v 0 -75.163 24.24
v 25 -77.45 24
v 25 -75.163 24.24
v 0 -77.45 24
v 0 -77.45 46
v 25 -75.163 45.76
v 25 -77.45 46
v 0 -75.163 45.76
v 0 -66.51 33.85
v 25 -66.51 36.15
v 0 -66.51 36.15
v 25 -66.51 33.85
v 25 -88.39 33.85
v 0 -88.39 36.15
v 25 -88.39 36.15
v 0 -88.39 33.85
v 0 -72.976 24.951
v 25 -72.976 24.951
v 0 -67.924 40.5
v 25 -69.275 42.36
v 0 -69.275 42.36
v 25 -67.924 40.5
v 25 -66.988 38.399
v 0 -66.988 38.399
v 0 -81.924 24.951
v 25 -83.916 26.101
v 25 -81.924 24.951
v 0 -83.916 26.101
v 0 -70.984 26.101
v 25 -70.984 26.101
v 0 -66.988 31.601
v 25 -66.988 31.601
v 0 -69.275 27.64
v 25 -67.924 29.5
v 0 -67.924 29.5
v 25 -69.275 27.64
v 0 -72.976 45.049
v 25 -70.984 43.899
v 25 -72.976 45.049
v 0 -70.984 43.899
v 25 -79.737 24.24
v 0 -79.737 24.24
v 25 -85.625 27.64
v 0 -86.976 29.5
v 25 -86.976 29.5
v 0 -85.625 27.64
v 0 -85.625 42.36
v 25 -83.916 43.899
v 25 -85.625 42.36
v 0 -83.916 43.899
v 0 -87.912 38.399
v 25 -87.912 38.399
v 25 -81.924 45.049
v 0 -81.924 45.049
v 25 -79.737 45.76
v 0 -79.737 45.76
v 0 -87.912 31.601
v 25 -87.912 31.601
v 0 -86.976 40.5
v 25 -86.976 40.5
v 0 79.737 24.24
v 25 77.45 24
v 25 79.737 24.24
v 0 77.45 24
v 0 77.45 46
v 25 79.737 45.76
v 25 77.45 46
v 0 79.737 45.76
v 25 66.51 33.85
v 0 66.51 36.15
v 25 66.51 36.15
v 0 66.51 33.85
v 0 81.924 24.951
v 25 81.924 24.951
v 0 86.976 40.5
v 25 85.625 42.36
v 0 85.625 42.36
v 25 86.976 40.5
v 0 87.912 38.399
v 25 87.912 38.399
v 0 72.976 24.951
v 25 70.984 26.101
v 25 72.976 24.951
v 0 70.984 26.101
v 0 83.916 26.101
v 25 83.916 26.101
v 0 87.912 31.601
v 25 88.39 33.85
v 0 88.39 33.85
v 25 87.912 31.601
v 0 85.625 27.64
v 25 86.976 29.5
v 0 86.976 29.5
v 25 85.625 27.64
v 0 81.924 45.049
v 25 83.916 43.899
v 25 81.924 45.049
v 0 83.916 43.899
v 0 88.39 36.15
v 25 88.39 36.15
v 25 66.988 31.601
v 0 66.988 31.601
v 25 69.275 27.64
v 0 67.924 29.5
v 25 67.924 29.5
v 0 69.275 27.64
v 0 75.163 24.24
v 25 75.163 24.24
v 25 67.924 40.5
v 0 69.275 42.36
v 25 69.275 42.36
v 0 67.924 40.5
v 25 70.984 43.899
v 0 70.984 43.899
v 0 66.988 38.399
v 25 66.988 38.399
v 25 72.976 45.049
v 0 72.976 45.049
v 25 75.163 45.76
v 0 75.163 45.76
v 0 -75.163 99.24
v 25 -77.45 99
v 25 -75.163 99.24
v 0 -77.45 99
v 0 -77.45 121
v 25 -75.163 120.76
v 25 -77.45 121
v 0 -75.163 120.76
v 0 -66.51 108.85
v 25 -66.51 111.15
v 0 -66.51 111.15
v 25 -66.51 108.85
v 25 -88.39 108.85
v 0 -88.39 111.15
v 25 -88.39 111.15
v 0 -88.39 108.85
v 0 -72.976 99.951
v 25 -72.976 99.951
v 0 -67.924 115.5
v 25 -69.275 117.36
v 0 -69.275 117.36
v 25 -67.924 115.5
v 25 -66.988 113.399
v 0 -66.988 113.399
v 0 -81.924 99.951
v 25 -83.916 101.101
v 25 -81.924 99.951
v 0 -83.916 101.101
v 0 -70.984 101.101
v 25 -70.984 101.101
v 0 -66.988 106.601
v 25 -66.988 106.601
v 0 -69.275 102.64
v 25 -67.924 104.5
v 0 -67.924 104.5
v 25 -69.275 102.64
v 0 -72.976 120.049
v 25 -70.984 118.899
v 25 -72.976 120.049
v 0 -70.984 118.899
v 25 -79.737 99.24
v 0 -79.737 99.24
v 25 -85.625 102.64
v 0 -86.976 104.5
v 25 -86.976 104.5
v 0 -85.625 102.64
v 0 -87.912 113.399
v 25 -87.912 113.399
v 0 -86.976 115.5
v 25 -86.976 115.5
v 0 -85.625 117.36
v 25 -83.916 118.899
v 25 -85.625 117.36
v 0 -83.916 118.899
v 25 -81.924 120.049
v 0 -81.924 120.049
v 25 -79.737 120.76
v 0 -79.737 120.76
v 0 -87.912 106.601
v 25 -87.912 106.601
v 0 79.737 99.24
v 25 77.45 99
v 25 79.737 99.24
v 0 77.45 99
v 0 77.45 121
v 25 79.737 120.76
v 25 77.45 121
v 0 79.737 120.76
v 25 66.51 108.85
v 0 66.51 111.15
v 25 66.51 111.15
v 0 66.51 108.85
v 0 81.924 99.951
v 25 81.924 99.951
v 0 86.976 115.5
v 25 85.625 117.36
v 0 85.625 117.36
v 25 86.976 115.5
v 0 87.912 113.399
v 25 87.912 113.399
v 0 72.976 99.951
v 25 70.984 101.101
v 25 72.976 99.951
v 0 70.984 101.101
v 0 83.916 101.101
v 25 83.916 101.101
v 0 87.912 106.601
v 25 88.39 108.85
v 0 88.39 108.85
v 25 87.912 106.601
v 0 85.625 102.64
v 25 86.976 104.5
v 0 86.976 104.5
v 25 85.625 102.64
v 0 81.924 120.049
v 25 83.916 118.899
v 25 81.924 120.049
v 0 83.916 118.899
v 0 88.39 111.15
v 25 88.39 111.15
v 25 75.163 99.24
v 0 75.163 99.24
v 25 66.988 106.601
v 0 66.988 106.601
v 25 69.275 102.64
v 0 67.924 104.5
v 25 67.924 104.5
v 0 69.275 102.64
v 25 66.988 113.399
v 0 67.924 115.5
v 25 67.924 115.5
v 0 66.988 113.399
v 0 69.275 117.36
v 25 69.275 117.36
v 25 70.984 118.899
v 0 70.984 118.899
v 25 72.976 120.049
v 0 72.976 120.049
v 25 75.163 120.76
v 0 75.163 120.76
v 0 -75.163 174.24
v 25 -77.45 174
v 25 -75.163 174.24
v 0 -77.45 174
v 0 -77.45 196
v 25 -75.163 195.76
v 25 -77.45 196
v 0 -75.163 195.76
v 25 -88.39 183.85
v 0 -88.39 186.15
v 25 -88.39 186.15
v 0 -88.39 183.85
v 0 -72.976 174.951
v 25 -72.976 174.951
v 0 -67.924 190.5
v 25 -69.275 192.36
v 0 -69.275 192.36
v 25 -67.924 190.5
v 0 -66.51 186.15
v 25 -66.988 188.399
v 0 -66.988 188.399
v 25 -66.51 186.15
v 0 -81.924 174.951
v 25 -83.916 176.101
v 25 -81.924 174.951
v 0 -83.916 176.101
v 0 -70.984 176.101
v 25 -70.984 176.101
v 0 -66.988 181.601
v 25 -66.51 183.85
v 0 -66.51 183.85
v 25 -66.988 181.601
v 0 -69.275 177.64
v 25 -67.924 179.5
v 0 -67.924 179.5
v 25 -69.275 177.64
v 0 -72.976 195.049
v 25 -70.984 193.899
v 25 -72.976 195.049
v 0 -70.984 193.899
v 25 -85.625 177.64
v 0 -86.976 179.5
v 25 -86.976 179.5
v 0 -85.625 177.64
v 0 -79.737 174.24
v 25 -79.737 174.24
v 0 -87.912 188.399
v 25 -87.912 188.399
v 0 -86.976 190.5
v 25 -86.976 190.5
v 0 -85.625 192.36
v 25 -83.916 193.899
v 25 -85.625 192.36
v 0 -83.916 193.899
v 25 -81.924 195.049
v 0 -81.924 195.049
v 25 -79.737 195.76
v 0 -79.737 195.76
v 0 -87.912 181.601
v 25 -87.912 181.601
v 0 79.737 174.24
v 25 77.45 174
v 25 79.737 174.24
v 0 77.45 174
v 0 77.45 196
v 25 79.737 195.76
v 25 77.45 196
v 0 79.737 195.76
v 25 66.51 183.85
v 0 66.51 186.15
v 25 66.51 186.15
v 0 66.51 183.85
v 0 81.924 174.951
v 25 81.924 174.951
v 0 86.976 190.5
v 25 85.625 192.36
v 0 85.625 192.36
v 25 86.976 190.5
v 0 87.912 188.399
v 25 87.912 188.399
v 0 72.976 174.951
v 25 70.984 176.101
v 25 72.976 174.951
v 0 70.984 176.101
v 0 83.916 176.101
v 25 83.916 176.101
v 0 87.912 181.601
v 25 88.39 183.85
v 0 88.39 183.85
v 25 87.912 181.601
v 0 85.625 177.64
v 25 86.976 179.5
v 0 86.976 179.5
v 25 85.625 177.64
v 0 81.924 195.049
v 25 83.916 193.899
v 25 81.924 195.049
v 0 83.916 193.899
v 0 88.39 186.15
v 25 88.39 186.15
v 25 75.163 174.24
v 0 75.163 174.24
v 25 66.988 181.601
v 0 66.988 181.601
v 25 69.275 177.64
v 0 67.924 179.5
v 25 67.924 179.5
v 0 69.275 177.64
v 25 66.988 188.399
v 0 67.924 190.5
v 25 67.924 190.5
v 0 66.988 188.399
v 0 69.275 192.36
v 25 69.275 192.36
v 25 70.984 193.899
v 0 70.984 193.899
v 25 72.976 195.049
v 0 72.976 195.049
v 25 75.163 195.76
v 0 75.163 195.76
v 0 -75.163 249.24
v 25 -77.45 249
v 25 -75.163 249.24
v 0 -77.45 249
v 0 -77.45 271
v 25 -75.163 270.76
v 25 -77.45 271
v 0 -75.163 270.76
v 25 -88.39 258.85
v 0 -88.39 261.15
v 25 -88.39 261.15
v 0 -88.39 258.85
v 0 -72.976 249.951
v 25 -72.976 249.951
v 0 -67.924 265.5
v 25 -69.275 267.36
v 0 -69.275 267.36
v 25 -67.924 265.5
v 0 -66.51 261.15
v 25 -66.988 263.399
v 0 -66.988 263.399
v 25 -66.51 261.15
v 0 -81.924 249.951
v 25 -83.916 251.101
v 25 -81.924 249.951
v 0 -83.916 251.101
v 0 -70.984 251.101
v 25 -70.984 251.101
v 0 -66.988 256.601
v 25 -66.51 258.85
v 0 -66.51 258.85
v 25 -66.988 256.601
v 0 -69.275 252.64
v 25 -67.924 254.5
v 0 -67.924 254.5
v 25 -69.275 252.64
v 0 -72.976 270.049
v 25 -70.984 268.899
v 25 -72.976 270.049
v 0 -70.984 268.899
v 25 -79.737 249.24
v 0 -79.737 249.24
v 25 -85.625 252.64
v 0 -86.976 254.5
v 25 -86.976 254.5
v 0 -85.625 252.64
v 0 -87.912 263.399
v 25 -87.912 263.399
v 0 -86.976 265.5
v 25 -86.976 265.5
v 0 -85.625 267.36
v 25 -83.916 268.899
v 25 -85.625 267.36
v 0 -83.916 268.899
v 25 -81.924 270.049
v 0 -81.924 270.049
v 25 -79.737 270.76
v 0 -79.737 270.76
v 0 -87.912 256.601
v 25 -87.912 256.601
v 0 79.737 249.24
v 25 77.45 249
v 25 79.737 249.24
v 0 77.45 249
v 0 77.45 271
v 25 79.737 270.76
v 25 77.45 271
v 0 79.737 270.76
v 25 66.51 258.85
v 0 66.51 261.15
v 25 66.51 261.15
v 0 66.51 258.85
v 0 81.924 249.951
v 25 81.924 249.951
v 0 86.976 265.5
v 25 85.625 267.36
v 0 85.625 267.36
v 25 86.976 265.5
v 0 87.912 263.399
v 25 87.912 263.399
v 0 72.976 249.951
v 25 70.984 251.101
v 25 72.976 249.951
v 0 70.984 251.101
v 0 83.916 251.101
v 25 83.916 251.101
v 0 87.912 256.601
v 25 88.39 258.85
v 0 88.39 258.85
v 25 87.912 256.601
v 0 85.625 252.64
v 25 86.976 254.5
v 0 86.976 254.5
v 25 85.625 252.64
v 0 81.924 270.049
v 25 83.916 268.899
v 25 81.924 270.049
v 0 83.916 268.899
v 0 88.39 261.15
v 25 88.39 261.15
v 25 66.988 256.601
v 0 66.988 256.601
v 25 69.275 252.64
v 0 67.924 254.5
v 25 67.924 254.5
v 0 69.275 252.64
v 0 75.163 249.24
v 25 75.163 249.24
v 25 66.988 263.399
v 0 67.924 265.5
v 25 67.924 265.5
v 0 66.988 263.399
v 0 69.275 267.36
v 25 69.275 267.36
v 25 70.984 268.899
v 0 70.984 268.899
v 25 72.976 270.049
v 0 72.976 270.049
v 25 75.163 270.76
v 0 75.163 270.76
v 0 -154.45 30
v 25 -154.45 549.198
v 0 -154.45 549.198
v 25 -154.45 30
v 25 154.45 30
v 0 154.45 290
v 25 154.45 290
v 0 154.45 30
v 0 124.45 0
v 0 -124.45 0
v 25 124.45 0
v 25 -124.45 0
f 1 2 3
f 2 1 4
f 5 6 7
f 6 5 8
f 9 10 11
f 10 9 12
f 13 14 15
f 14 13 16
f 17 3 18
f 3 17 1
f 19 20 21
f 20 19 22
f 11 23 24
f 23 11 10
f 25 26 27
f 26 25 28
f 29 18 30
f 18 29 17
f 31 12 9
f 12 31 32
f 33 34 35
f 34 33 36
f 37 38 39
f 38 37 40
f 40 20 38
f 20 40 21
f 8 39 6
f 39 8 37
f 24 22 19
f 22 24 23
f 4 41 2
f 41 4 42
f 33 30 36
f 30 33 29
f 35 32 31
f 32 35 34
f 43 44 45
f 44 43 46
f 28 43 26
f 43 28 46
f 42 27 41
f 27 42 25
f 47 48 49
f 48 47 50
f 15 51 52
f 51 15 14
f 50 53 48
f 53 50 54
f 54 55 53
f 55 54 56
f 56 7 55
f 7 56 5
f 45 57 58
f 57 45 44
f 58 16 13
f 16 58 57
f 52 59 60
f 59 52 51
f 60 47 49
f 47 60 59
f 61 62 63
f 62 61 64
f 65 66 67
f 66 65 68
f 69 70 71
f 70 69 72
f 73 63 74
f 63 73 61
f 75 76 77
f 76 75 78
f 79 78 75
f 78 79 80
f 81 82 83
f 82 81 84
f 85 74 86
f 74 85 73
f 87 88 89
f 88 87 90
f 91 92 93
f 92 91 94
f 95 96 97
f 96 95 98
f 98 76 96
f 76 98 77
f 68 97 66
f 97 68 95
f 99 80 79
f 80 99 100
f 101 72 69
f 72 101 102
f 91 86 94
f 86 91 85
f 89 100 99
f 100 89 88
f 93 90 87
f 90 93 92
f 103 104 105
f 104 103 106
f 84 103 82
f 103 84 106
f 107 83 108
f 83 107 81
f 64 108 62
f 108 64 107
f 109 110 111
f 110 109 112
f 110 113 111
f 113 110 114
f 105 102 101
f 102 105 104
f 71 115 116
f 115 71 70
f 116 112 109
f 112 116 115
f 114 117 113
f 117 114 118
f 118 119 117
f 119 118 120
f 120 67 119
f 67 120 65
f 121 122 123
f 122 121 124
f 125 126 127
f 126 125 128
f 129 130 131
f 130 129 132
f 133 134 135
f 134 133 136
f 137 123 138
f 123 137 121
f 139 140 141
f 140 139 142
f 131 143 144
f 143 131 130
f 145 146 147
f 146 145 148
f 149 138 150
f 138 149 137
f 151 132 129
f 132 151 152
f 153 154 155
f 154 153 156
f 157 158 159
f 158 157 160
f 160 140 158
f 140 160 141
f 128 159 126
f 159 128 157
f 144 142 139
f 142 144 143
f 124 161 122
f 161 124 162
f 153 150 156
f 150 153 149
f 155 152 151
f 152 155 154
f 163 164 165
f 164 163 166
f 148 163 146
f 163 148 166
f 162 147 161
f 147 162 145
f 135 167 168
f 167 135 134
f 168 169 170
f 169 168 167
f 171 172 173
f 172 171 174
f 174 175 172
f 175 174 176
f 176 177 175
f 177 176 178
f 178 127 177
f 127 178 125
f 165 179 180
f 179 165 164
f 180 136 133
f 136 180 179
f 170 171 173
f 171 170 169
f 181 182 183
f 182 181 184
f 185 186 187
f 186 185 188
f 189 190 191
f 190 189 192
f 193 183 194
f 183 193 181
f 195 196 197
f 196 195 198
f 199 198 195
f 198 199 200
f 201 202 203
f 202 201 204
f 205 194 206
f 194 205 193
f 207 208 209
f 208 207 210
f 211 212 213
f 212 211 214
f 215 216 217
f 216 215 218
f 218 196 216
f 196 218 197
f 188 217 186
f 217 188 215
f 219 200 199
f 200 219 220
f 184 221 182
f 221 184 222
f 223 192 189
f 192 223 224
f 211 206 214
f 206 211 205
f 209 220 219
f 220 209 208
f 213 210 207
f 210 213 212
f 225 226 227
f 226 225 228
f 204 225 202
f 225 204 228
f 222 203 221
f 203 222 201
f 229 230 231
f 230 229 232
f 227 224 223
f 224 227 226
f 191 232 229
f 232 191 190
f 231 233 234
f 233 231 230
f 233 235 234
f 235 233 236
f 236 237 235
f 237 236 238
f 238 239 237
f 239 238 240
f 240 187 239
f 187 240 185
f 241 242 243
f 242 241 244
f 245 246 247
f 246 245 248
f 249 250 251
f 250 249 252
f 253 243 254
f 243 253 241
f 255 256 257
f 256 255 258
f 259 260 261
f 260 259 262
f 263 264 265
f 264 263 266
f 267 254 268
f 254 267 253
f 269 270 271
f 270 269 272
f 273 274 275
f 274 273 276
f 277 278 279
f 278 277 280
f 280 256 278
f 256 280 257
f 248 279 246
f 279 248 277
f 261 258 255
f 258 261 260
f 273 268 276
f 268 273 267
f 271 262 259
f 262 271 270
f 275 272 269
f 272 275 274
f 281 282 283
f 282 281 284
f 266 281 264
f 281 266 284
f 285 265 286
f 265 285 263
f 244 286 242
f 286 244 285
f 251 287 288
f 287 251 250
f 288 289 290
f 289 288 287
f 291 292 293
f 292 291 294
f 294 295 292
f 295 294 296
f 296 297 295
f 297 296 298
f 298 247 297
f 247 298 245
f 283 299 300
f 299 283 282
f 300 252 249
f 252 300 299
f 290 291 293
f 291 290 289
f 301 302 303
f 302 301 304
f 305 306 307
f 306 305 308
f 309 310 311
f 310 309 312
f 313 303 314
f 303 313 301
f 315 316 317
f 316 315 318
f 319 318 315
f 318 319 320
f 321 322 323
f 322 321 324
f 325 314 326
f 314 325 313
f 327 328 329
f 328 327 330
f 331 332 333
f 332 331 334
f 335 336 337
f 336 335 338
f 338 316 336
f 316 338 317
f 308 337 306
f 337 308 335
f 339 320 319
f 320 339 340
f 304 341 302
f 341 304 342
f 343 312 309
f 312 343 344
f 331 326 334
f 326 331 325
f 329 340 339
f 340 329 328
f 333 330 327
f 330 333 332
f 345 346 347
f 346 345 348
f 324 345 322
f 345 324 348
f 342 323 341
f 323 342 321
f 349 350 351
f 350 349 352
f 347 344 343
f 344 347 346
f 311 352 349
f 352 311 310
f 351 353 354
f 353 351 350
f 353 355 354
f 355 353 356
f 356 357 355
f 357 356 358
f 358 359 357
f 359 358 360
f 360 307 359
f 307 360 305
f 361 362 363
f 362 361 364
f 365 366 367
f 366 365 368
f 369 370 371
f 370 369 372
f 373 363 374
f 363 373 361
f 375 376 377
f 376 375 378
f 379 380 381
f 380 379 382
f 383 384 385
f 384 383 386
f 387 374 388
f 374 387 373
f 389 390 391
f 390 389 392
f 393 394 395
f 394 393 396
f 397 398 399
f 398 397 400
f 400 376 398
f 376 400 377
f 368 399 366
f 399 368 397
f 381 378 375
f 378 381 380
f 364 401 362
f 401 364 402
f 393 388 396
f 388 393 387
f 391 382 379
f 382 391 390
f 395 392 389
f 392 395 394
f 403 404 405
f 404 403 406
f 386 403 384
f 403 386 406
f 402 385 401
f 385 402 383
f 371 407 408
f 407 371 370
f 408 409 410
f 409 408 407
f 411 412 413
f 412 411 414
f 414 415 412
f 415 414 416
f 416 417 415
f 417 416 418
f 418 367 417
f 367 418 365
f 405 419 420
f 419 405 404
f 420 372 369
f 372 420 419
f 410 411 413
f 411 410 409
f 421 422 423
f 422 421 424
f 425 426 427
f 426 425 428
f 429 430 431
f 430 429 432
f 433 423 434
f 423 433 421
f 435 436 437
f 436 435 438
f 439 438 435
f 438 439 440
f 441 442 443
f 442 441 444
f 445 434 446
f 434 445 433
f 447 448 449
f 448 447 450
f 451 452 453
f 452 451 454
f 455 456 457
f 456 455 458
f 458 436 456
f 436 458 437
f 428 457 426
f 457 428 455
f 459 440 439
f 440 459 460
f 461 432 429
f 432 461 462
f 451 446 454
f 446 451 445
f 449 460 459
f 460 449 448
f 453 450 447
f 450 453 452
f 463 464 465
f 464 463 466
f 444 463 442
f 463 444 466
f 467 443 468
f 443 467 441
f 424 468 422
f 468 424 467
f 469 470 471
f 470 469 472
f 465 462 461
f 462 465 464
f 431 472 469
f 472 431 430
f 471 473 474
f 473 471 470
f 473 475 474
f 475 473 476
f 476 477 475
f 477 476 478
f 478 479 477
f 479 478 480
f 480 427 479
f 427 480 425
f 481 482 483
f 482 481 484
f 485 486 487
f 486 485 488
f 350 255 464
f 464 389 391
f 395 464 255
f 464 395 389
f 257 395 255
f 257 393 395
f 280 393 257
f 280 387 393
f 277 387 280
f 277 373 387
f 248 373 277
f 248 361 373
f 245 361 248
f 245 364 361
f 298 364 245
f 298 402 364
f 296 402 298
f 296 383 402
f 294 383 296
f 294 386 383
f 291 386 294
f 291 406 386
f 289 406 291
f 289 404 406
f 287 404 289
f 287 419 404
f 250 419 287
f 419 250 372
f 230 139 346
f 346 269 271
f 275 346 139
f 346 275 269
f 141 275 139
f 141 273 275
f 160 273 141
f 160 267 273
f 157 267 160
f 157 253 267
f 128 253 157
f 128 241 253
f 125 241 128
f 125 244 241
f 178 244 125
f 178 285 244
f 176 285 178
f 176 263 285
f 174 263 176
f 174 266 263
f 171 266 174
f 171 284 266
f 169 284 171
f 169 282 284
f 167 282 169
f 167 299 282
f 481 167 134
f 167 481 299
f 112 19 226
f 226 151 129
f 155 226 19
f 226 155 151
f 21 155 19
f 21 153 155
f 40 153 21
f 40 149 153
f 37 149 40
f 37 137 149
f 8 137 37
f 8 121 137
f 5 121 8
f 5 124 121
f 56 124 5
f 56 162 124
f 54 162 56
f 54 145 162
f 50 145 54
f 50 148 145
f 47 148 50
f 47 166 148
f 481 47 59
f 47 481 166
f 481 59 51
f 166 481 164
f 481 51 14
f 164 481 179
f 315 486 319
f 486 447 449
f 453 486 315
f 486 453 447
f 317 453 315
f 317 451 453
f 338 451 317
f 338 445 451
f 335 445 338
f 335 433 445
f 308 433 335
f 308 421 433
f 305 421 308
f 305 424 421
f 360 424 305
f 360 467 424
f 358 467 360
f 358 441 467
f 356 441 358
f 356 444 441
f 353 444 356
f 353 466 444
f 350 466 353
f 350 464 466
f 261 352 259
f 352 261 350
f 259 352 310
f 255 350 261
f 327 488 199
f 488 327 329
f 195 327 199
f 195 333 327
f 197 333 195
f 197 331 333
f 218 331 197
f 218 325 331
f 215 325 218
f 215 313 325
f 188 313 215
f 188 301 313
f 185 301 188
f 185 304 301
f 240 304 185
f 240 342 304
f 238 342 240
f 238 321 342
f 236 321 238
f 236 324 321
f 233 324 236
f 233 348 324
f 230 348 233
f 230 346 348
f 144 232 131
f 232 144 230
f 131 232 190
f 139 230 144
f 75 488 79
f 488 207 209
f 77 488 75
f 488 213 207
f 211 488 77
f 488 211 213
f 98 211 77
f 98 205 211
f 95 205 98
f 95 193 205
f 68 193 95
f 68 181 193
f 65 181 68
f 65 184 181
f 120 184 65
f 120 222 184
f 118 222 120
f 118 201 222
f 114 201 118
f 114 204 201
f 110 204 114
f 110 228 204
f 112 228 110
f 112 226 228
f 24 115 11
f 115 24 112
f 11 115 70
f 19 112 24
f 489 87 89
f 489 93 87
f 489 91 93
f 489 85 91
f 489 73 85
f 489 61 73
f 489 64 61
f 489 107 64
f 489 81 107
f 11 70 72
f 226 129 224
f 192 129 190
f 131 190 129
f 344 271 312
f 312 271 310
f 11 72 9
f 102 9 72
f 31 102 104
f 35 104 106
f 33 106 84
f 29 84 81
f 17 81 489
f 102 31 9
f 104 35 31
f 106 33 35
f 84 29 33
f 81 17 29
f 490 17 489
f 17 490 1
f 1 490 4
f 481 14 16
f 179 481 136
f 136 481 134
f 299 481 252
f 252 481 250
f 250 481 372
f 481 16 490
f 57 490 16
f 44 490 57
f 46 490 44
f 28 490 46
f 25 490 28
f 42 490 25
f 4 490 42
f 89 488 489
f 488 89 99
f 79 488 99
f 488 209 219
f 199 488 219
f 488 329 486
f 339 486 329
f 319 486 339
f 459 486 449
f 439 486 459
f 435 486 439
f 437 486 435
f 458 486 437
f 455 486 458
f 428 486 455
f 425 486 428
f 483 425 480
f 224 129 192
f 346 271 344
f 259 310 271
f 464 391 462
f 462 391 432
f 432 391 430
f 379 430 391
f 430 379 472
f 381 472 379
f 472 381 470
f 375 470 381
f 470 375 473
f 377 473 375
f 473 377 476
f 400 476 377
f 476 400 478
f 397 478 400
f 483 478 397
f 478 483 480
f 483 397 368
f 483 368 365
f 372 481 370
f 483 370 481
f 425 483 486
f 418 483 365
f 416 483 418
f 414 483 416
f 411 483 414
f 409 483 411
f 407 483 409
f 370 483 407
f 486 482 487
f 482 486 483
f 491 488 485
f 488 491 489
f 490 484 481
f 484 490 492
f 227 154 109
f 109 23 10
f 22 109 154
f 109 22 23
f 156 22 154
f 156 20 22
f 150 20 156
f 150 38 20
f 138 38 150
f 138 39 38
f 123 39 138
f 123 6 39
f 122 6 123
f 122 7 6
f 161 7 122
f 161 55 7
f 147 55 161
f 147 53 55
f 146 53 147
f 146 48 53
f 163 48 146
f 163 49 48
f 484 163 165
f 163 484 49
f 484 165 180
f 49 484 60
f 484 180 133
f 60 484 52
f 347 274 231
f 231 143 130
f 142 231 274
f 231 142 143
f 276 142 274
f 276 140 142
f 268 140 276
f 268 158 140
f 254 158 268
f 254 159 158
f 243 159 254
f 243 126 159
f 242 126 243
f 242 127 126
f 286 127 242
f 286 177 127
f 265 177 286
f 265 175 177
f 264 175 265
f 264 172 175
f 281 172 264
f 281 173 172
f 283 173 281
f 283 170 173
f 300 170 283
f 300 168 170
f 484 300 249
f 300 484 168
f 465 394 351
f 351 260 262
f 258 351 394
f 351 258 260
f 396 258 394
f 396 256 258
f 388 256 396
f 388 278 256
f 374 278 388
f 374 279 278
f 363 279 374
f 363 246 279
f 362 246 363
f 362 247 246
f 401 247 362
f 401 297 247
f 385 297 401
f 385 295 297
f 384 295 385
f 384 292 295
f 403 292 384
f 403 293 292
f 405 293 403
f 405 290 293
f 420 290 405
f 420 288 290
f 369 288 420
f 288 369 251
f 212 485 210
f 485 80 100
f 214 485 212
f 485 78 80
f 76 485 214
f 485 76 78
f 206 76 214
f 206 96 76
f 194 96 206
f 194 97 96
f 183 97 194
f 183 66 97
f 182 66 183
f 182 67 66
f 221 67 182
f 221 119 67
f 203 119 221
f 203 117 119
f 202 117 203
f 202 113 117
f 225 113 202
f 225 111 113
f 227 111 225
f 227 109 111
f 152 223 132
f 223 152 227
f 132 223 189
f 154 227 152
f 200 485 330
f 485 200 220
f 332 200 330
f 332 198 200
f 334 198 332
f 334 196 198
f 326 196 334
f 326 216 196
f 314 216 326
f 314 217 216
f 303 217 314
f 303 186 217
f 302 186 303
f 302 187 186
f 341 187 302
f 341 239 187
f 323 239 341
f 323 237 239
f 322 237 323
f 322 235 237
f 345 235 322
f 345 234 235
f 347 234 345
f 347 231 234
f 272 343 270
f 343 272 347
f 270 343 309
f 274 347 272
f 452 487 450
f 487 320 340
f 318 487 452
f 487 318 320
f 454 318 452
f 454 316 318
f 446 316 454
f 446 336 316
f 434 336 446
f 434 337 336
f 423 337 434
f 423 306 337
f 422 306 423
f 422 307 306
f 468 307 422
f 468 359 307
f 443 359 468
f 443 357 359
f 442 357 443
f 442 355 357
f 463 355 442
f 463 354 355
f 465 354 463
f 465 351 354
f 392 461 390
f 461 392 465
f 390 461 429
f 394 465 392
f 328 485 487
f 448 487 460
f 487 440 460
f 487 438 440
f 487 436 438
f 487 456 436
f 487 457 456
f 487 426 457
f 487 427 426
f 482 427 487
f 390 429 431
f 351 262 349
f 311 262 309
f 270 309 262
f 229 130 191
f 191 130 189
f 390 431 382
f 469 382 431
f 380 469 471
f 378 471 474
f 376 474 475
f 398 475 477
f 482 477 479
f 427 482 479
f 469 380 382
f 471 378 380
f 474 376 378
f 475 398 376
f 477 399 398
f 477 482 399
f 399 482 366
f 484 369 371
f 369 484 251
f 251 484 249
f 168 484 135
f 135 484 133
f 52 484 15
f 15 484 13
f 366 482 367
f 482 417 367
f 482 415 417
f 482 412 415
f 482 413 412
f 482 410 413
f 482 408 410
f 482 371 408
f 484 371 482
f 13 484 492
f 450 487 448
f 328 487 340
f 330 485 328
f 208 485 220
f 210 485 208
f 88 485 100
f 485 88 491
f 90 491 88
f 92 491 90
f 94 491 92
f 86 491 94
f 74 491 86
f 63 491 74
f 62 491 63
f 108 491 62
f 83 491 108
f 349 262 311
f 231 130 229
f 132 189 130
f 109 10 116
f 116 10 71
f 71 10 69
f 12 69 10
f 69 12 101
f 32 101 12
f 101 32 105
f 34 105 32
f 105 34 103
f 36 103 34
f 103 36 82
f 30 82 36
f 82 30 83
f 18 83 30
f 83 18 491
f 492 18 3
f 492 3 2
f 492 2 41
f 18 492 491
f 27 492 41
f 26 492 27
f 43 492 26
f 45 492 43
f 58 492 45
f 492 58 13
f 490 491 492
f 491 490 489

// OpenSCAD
// file: params.scad
// Global Parameters for the IKEA brace

// The Wide Flange is a W250x67

WF_b = 204;    // flange width
WF_t = 15.7;   // flange thickness
WF_d = 257;    // total depth
WF_w = 8.9;    // web thickness
WF_k = 36;     // "k" distance (outside of flange to toe of fillet)
// WF_L = undef;    // total length of W  (see below)

WF_cut_radius = 300;   // radius of flange cut
WF_flange_cut = 40;    // width cut from each flange
// WF_start_cut = undef;  // distance to start of flange cut (see below)
// WF_g = undef;          // bolt gauge  (see below)

// The angles are L102x76x13, short leg bolted to web, long leg outstanding

L_d = 102;     // leg size, out from web
L_b = 76.2;    // leg size, parallel to web
L_t = 12.7;    // leg thickness
L_dg = 65;     // gauge, out from web
L_bg = 45;     // gauge, parallel to web - for bolts through web


// Bolts
Bolt_d = 22;     // bolt hole diameter (actual, not allowance)
Bolt_e = 35;     // end distances
Bolt_n = 4;      // number of bolts each end of angle
Bolt_s = 75;     // bolt spacing

// Gusset Plate
Gusset_t = 25;     // gusset thickness
Gusset_e = Bolt_e;     // edge distance to first bolt
Gusset_gap = 5;       // between gusset plate and end of W
// Gusset_g = undef;    // gusset gauge - see below

// Web Plates (reinforcing)
Plate_t = 8;       // plate thickness
Plate_W = 175;     // plate width
Plate_setback = 10;   // setback from end of web for welding
Plate_L = (Bolt_n-1)*Bolt_s + Bolt_e + Bolt_e - Plate_setback;      // plate length

WF_L = 800;                   // length of W
WF_g = Gusset_t + 2*L_bg;      // gauge distance on WF web
Gusset_g = WF_w + 2*Plate_t + 2*L_dg;    // gauge distance on gusset plate
WF_start_cut = Plate_L + 0;   // start cutting flange this far from big end

WF_T = WF_d - WF_k*2;         // "T" distance - inside of fillet toes = d-2k
if( Plate_W+10 > WF_T ) {
    echo( "Web plate too wide.  Max is", WF_T-10 );
}
w = Gusset_t + L_b*2;         // out-to-out of angles
if( w > WF_T ) {
    echo( "Angles+gusset too wide.  Reduce by", w-WF_T, "Max angle leg is",(WF_T-Gusset_t)/2 );
}

// echo("WF_g =", WF_g, "(gauge on web and gusset)");
// main file
// full size gusset plate

include <params.scad>;

d = Bolt_d; // hole diameter
g = Gusset_g;   // gauge, on gusset plate
e = Gusset_e;          // end distance, next to W 
e2 = 30;               // other end distance
n = Bolt_n;            // no of lines of bolts
s = Bolt_s;            // bolt spacing

w = WF_w + 2*Plate_t;   // web thickness
gw = w + 2*L_d + 10 + 10;  // gusset width next to W
gwa = 30;                 // additional gusset width each side
gt = Gusset_t;             // gusset thickness 
gl = e + (n-1)*s + e2;  // gusset length short leg.

angle = 40;           // angle of cut on end

render() {
    pts = [[0,0],
           [gw,0],
           [gw+gwa,gwa],
           [gw+gwa,gl],
           [-gwa,gl+(gw+2*gwa)*tan(angle)],
           [-gwa,gwa]
          ];
    difference() {
        translate([0,-gw/2,0]) 
            rotate([0,90,0]) 
                rotate([0,0,90])
                    linear_extrude(height=gt) polygon(pts);
    
    
        for (i = [0:n-1]) {        // the holes
            translate([0,-g/2,e+i*s]) {
                rotate([0,90,0]) { 
                    cylinder(h=100,d=d,center=true); }}
            translate([0,g/2,e+i*s]) {
                rotate([0,90,0]) { 
                    cylinder(h=100,d=d,center=true); }}
        }
    }
}
    
